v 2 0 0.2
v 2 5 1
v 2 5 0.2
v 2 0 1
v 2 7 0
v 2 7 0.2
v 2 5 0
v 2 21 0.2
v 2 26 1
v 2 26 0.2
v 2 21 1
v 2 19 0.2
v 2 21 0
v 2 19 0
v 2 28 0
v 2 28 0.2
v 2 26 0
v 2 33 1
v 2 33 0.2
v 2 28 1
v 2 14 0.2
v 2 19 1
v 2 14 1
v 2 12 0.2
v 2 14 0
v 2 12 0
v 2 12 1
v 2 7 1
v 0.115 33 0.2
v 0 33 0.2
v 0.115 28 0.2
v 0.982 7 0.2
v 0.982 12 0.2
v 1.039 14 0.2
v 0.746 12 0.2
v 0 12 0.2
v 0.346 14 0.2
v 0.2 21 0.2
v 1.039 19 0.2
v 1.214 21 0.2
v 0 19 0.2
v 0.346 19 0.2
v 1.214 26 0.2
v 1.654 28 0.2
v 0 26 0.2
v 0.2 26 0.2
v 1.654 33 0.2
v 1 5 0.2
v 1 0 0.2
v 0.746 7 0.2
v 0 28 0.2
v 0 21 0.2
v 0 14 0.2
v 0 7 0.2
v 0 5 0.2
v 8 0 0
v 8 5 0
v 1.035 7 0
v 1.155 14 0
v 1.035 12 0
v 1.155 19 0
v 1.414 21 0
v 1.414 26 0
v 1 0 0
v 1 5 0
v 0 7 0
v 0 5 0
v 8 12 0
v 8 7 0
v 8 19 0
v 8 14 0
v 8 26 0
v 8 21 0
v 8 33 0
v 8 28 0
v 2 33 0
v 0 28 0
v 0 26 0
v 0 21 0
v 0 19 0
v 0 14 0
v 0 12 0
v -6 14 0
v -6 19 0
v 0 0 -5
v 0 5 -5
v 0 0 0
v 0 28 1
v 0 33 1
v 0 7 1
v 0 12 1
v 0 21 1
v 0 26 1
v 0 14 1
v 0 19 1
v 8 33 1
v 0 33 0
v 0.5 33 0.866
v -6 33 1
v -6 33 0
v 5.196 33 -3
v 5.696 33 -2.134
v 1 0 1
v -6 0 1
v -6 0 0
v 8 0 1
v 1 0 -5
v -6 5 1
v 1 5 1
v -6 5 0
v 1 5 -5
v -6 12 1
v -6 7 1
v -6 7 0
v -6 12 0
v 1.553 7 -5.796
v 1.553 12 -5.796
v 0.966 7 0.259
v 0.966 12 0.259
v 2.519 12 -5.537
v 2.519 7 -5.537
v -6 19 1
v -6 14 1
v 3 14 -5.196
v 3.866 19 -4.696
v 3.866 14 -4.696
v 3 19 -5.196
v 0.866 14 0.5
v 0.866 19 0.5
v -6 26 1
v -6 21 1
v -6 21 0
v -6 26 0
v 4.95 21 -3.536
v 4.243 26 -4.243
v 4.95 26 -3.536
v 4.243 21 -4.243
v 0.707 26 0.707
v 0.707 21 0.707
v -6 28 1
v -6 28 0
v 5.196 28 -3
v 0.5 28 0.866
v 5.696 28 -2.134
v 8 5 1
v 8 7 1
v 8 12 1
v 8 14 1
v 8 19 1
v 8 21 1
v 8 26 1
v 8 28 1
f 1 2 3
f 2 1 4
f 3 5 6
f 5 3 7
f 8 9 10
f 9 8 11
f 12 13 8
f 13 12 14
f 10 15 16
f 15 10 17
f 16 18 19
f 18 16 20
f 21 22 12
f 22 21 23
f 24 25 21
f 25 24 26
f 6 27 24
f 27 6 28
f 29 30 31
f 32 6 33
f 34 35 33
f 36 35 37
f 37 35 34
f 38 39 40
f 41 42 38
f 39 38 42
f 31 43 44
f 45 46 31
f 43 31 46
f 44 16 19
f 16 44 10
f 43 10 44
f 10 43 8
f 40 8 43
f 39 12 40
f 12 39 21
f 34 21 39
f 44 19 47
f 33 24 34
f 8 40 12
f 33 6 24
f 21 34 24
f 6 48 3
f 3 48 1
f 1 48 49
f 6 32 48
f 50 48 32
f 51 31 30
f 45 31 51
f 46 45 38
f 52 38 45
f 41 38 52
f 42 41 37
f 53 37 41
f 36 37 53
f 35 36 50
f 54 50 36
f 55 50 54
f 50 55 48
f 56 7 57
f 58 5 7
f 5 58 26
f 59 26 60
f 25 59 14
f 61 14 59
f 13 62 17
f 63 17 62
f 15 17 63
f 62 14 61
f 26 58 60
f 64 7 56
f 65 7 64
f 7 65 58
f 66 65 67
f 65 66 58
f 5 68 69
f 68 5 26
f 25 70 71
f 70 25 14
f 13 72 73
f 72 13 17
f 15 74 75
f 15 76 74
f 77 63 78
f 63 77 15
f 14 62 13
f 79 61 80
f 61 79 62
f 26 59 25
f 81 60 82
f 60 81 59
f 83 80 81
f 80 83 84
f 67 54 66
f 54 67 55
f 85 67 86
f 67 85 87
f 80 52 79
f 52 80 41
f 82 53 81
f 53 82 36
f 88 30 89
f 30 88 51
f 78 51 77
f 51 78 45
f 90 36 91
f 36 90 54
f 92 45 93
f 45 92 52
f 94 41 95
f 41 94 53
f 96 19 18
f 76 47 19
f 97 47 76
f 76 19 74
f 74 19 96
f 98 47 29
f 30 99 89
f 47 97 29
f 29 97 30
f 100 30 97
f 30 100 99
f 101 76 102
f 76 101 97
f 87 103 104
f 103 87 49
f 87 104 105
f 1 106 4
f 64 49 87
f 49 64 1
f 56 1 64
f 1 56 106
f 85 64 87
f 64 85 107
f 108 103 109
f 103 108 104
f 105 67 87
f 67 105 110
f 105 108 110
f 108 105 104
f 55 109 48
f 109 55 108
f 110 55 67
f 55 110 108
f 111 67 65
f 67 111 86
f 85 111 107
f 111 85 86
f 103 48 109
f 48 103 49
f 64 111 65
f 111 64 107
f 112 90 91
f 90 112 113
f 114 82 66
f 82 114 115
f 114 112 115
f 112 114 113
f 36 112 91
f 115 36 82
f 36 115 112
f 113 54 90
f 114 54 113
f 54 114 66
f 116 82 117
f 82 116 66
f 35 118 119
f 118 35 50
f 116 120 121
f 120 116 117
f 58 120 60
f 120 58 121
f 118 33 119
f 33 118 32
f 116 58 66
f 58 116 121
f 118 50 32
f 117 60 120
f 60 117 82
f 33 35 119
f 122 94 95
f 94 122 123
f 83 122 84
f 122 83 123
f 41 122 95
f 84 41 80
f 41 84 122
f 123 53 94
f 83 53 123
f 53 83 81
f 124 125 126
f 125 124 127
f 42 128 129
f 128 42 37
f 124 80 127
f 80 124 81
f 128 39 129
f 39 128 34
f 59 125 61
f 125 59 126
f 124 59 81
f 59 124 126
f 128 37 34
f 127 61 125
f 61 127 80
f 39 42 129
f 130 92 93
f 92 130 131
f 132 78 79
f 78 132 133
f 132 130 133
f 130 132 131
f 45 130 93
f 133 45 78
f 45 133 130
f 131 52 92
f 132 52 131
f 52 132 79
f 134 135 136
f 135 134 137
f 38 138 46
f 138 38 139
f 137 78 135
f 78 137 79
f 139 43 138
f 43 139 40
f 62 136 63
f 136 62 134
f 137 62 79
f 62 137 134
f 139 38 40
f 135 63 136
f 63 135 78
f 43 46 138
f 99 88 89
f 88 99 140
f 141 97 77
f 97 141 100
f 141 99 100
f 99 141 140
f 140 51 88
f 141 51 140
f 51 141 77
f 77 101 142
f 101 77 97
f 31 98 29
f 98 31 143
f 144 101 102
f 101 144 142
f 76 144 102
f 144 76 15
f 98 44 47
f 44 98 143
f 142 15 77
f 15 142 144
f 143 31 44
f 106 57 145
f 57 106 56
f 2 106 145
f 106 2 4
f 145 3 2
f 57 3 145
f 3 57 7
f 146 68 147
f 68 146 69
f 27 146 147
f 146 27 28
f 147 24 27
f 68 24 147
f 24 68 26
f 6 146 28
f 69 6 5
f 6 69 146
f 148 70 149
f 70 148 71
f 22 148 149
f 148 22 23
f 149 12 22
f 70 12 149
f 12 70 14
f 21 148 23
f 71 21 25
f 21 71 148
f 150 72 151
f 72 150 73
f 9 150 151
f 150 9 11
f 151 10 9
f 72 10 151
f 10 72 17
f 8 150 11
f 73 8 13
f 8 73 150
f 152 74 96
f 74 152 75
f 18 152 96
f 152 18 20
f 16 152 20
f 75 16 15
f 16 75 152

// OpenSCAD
// Generated by SolidPython 1.1.3 on 2023-05-26 17:04:48


union() {
	cube(size = [2.0000000000, 33.0000000000, 0.2000000000]);
	translate(v = [-6.0000000000, 0, 0]) {
		cube(size = [6.0000000000, 5.0000000000, 1]);
	}
	translate(v = [0, 0, 1]) {
		rotate(a = -90, v = [0, 1, 0]) {
			translate(v = [-6.0000000000, 0, -1]) {
				cube(size = [6.0000000000, 5.0000000000, 1]);
			}
		}
	}
	translate(v = [-6.0000000000, 7.0000000000, 0]) {
		cube(size = [6.0000000000, 5.0000000000, 1]);
	}
	translate(v = [0, 7.0000000000, 0]) {
		rotate(a = -105, v = [0, 1, 0]) {
			translate(v = [-6.0000000000, 0, -1]) {
				cube(size = [6.0000000000, 5.0000000000, 1]);
			}
		}
	}
	translate(v = [-6.0000000000, 14.0000000000, 0]) {
		cube(size = [6.0000000000, 5.0000000000, 1]);
	}
	translate(v = [0, 14.0000000000, 0]) {
		rotate(a = -120, v = [0, 1, 0]) {
			translate(v = [-6.0000000000, 0, -1]) {
				cube(size = [6.0000000000, 5.0000000000, 1]);
			}
		}
	}
	translate(v = [-6.0000000000, 21.0000000000, 0]) {
		cube(size = [6.0000000000, 5.0000000000, 1]);
	}
	translate(v = [0, 21.0000000000, 0]) {
		rotate(a = -135, v = [0, 1, 0]) {
			translate(v = [-6.0000000000, 0, -1]) {
				cube(size = [6.0000000000, 5.0000000000, 1]);
			}
		}
	}
	translate(v = [-6.0000000000, 28.0000000000, 0]) {
		cube(size = [6.0000000000, 5.0000000000, 1]);
	}
	translate(v = [0, 28.0000000000, 0]) {
		rotate(a = -150, v = [0, 1, 0]) {
			translate(v = [-6.0000000000, 0, -1]) {
				cube(size = [6.0000000000, 5.0000000000, 1]);
			}
		}
	}
	translate(v = [2.0000000000, 0, 0]) {
		cube(size = [6.0000000000, 5.0000000000, 1]);
	}
	translate(v = [2.0000000000, 7.0000000000, 0]) {
		cube(size = [6.0000000000, 5.0000000000, 1]);
	}
	translate(v = [2.0000000000, 14.0000000000, 0]) {
		cube(size = [6.0000000000, 5.0000000000, 1]);
	}
	translate(v = [2.0000000000, 21.0000000000, 0]) {
		cube(size = [6.0000000000, 5.0000000000, 1]);
	}
	translate(v = [2.0000000000, 28.0000000000, 0]) {
		cube(size = [6.0000000000, 5.0000000000, 1]);
	}
}
/***********************************************
*********      SolidPython code:      **********
************************************************
 
from solid import scad_render_to_file, cylinder, cube, translate, rotate, union, difference, intersection
from solid.utils import *
import math
import subprocess

center_width = 2.0
wall_thickness = 1.0
tab_length = 5.0
tab_gap = 2.0

shell_thickness = 0.2
tab_thickness = 1

centerline = cube([center_width, tab_length*5+(tab_length-1)*tab_gap, shell_thickness])

# Make tab
tab1 = cube([tab_length + wall_thickness, tab_length, tab_thickness])
#tab2 = cube([2*tab_length + 2*wall_thickness + center_width, tab_length, tab_thickness])
#tab3 = cube([2*tab_length + 2*wall_thickness + center_width, tab_length, tab_thickness])
#tab4 = cube([2*tab_length + 2*wall_thickness + center_width, tab_length, tab_thickness])
#tab5 = cube([2*tab_length + 2*wall_thickness + center_width, tab_length, tab_thickness])

# Translate flat tabs
ttab1 = translate([-1*(tab_length+wall_thickness), 0, 0])(tab1)
ttab2 = translate([-1*(tab_length+wall_thickness), tab_length+tab_gap, 0])(tab1)
ttab3 = translate([-1*(tab_length+wall_thickness), 2*(tab_length+tab_gap), 0])(tab1)
ttab4 = translate([-1*(tab_length+wall_thickness), 3*(tab_length+tab_gap), 0])(tab1)
ttab5 = translate([-1*(tab_length+wall_thickness), 4*(tab_length+tab_gap), 0])(tab1)
ttab6 = translate([center_width, 0, 0])(tab1)
ttab7 = translate([center_width, tab_length+tab_gap, 0])(tab1)
ttab8 = translate([center_width, 2*(tab_length+tab_gap), 0])(tab1)
ttab9 = translate([center_width, 3*(tab_length+tab_gap), 0])(tab1)
ttab10= translate([center_width, 4*(tab_length+tab_gap), 0])(tab1)

# Rotate tabs
rtab1 = translate([0,0,tab_thickness])(
    rotate(-90,[0,1,0])(
        translate([-(tab_length + wall_thickness),0,-tab_thickness])(tab1)))
rtab2 = translate([0,tab_length+tab_gap,0])(
    rotate(-105,[0,1,0])(
        translate([-(tab_length + wall_thickness),0,-tab_thickness])(tab1)))
rtab3 = translate([0,2*(tab_length+tab_gap),0])(
    rotate(-120,[0,1,0])(
        translate([-(tab_length + wall_thickness),0,-tab_thickness])(tab1)))
rtab4 = translate([0,3*(tab_length+tab_gap),0])(
    rotate(-135,[0,1,0])(
        translate([-(tab_length + wall_thickness),0,-tab_thickness])(tab1)))
rtab5 = translate([0,4*(tab_length+tab_gap),0])(
    rotate(-150,[0,1,0])(
        translate([-(tab_length + wall_thickness),0,-tab_thickness])(tab1)))

rtab6 = translate([center_width,0,0])(
    rotate(-15,[0,1,0])(
        translate([0,0,-tab_thickness])(tab1)))
rtab7 = translate([center_width,tab_length+tab_gap,0])(
    rotate(-30,[0,1,0])(
        translate([0,0,-tab_thickness])(tab1)))
rtab8 = translate([center_width,2*(tab_length+tab_gap),0])(
    rotate(-45,[0,1,0])(
        translate([0,0,-tab_thickness])(tab1)))
rtab9 = translate([center_width,3*(tab_length+tab_gap),0])(
    rotate(-60,[0,1,0])(
        translate([0,0,-tab_thickness])(tab1)))
rtab10= translate([center_width,4*(tab_length+tab_gap),0])(
    rotate(-75,[0,1,0])(
        translate([0,0,-tab_thickness])(tab1)))

# Final Geometry Union
final_geometry = union()(
    centerline,
    ttab1, rtab1,
    ttab2, rtab2,
    ttab3, rtab3,
    ttab4, rtab4,
    ttab5, rtab5,
    ttab6, #rtab6,
    ttab7, #rtab7,
    ttab8, #rtab8,
    ttab9, #rtab9,
    ttab10, #rtab10,
)

# Generate OpenSCAD script and save it to a file
scad_render_to_file(final_geometry, 'output.scad')

# Execute OpenSCAD CLI to generate STL file
openscad_command = ['openscad', '-o', 'output.stl', 'output.scad']
subprocess.run(openscad_command, check=True)
 
 
************************************************/
